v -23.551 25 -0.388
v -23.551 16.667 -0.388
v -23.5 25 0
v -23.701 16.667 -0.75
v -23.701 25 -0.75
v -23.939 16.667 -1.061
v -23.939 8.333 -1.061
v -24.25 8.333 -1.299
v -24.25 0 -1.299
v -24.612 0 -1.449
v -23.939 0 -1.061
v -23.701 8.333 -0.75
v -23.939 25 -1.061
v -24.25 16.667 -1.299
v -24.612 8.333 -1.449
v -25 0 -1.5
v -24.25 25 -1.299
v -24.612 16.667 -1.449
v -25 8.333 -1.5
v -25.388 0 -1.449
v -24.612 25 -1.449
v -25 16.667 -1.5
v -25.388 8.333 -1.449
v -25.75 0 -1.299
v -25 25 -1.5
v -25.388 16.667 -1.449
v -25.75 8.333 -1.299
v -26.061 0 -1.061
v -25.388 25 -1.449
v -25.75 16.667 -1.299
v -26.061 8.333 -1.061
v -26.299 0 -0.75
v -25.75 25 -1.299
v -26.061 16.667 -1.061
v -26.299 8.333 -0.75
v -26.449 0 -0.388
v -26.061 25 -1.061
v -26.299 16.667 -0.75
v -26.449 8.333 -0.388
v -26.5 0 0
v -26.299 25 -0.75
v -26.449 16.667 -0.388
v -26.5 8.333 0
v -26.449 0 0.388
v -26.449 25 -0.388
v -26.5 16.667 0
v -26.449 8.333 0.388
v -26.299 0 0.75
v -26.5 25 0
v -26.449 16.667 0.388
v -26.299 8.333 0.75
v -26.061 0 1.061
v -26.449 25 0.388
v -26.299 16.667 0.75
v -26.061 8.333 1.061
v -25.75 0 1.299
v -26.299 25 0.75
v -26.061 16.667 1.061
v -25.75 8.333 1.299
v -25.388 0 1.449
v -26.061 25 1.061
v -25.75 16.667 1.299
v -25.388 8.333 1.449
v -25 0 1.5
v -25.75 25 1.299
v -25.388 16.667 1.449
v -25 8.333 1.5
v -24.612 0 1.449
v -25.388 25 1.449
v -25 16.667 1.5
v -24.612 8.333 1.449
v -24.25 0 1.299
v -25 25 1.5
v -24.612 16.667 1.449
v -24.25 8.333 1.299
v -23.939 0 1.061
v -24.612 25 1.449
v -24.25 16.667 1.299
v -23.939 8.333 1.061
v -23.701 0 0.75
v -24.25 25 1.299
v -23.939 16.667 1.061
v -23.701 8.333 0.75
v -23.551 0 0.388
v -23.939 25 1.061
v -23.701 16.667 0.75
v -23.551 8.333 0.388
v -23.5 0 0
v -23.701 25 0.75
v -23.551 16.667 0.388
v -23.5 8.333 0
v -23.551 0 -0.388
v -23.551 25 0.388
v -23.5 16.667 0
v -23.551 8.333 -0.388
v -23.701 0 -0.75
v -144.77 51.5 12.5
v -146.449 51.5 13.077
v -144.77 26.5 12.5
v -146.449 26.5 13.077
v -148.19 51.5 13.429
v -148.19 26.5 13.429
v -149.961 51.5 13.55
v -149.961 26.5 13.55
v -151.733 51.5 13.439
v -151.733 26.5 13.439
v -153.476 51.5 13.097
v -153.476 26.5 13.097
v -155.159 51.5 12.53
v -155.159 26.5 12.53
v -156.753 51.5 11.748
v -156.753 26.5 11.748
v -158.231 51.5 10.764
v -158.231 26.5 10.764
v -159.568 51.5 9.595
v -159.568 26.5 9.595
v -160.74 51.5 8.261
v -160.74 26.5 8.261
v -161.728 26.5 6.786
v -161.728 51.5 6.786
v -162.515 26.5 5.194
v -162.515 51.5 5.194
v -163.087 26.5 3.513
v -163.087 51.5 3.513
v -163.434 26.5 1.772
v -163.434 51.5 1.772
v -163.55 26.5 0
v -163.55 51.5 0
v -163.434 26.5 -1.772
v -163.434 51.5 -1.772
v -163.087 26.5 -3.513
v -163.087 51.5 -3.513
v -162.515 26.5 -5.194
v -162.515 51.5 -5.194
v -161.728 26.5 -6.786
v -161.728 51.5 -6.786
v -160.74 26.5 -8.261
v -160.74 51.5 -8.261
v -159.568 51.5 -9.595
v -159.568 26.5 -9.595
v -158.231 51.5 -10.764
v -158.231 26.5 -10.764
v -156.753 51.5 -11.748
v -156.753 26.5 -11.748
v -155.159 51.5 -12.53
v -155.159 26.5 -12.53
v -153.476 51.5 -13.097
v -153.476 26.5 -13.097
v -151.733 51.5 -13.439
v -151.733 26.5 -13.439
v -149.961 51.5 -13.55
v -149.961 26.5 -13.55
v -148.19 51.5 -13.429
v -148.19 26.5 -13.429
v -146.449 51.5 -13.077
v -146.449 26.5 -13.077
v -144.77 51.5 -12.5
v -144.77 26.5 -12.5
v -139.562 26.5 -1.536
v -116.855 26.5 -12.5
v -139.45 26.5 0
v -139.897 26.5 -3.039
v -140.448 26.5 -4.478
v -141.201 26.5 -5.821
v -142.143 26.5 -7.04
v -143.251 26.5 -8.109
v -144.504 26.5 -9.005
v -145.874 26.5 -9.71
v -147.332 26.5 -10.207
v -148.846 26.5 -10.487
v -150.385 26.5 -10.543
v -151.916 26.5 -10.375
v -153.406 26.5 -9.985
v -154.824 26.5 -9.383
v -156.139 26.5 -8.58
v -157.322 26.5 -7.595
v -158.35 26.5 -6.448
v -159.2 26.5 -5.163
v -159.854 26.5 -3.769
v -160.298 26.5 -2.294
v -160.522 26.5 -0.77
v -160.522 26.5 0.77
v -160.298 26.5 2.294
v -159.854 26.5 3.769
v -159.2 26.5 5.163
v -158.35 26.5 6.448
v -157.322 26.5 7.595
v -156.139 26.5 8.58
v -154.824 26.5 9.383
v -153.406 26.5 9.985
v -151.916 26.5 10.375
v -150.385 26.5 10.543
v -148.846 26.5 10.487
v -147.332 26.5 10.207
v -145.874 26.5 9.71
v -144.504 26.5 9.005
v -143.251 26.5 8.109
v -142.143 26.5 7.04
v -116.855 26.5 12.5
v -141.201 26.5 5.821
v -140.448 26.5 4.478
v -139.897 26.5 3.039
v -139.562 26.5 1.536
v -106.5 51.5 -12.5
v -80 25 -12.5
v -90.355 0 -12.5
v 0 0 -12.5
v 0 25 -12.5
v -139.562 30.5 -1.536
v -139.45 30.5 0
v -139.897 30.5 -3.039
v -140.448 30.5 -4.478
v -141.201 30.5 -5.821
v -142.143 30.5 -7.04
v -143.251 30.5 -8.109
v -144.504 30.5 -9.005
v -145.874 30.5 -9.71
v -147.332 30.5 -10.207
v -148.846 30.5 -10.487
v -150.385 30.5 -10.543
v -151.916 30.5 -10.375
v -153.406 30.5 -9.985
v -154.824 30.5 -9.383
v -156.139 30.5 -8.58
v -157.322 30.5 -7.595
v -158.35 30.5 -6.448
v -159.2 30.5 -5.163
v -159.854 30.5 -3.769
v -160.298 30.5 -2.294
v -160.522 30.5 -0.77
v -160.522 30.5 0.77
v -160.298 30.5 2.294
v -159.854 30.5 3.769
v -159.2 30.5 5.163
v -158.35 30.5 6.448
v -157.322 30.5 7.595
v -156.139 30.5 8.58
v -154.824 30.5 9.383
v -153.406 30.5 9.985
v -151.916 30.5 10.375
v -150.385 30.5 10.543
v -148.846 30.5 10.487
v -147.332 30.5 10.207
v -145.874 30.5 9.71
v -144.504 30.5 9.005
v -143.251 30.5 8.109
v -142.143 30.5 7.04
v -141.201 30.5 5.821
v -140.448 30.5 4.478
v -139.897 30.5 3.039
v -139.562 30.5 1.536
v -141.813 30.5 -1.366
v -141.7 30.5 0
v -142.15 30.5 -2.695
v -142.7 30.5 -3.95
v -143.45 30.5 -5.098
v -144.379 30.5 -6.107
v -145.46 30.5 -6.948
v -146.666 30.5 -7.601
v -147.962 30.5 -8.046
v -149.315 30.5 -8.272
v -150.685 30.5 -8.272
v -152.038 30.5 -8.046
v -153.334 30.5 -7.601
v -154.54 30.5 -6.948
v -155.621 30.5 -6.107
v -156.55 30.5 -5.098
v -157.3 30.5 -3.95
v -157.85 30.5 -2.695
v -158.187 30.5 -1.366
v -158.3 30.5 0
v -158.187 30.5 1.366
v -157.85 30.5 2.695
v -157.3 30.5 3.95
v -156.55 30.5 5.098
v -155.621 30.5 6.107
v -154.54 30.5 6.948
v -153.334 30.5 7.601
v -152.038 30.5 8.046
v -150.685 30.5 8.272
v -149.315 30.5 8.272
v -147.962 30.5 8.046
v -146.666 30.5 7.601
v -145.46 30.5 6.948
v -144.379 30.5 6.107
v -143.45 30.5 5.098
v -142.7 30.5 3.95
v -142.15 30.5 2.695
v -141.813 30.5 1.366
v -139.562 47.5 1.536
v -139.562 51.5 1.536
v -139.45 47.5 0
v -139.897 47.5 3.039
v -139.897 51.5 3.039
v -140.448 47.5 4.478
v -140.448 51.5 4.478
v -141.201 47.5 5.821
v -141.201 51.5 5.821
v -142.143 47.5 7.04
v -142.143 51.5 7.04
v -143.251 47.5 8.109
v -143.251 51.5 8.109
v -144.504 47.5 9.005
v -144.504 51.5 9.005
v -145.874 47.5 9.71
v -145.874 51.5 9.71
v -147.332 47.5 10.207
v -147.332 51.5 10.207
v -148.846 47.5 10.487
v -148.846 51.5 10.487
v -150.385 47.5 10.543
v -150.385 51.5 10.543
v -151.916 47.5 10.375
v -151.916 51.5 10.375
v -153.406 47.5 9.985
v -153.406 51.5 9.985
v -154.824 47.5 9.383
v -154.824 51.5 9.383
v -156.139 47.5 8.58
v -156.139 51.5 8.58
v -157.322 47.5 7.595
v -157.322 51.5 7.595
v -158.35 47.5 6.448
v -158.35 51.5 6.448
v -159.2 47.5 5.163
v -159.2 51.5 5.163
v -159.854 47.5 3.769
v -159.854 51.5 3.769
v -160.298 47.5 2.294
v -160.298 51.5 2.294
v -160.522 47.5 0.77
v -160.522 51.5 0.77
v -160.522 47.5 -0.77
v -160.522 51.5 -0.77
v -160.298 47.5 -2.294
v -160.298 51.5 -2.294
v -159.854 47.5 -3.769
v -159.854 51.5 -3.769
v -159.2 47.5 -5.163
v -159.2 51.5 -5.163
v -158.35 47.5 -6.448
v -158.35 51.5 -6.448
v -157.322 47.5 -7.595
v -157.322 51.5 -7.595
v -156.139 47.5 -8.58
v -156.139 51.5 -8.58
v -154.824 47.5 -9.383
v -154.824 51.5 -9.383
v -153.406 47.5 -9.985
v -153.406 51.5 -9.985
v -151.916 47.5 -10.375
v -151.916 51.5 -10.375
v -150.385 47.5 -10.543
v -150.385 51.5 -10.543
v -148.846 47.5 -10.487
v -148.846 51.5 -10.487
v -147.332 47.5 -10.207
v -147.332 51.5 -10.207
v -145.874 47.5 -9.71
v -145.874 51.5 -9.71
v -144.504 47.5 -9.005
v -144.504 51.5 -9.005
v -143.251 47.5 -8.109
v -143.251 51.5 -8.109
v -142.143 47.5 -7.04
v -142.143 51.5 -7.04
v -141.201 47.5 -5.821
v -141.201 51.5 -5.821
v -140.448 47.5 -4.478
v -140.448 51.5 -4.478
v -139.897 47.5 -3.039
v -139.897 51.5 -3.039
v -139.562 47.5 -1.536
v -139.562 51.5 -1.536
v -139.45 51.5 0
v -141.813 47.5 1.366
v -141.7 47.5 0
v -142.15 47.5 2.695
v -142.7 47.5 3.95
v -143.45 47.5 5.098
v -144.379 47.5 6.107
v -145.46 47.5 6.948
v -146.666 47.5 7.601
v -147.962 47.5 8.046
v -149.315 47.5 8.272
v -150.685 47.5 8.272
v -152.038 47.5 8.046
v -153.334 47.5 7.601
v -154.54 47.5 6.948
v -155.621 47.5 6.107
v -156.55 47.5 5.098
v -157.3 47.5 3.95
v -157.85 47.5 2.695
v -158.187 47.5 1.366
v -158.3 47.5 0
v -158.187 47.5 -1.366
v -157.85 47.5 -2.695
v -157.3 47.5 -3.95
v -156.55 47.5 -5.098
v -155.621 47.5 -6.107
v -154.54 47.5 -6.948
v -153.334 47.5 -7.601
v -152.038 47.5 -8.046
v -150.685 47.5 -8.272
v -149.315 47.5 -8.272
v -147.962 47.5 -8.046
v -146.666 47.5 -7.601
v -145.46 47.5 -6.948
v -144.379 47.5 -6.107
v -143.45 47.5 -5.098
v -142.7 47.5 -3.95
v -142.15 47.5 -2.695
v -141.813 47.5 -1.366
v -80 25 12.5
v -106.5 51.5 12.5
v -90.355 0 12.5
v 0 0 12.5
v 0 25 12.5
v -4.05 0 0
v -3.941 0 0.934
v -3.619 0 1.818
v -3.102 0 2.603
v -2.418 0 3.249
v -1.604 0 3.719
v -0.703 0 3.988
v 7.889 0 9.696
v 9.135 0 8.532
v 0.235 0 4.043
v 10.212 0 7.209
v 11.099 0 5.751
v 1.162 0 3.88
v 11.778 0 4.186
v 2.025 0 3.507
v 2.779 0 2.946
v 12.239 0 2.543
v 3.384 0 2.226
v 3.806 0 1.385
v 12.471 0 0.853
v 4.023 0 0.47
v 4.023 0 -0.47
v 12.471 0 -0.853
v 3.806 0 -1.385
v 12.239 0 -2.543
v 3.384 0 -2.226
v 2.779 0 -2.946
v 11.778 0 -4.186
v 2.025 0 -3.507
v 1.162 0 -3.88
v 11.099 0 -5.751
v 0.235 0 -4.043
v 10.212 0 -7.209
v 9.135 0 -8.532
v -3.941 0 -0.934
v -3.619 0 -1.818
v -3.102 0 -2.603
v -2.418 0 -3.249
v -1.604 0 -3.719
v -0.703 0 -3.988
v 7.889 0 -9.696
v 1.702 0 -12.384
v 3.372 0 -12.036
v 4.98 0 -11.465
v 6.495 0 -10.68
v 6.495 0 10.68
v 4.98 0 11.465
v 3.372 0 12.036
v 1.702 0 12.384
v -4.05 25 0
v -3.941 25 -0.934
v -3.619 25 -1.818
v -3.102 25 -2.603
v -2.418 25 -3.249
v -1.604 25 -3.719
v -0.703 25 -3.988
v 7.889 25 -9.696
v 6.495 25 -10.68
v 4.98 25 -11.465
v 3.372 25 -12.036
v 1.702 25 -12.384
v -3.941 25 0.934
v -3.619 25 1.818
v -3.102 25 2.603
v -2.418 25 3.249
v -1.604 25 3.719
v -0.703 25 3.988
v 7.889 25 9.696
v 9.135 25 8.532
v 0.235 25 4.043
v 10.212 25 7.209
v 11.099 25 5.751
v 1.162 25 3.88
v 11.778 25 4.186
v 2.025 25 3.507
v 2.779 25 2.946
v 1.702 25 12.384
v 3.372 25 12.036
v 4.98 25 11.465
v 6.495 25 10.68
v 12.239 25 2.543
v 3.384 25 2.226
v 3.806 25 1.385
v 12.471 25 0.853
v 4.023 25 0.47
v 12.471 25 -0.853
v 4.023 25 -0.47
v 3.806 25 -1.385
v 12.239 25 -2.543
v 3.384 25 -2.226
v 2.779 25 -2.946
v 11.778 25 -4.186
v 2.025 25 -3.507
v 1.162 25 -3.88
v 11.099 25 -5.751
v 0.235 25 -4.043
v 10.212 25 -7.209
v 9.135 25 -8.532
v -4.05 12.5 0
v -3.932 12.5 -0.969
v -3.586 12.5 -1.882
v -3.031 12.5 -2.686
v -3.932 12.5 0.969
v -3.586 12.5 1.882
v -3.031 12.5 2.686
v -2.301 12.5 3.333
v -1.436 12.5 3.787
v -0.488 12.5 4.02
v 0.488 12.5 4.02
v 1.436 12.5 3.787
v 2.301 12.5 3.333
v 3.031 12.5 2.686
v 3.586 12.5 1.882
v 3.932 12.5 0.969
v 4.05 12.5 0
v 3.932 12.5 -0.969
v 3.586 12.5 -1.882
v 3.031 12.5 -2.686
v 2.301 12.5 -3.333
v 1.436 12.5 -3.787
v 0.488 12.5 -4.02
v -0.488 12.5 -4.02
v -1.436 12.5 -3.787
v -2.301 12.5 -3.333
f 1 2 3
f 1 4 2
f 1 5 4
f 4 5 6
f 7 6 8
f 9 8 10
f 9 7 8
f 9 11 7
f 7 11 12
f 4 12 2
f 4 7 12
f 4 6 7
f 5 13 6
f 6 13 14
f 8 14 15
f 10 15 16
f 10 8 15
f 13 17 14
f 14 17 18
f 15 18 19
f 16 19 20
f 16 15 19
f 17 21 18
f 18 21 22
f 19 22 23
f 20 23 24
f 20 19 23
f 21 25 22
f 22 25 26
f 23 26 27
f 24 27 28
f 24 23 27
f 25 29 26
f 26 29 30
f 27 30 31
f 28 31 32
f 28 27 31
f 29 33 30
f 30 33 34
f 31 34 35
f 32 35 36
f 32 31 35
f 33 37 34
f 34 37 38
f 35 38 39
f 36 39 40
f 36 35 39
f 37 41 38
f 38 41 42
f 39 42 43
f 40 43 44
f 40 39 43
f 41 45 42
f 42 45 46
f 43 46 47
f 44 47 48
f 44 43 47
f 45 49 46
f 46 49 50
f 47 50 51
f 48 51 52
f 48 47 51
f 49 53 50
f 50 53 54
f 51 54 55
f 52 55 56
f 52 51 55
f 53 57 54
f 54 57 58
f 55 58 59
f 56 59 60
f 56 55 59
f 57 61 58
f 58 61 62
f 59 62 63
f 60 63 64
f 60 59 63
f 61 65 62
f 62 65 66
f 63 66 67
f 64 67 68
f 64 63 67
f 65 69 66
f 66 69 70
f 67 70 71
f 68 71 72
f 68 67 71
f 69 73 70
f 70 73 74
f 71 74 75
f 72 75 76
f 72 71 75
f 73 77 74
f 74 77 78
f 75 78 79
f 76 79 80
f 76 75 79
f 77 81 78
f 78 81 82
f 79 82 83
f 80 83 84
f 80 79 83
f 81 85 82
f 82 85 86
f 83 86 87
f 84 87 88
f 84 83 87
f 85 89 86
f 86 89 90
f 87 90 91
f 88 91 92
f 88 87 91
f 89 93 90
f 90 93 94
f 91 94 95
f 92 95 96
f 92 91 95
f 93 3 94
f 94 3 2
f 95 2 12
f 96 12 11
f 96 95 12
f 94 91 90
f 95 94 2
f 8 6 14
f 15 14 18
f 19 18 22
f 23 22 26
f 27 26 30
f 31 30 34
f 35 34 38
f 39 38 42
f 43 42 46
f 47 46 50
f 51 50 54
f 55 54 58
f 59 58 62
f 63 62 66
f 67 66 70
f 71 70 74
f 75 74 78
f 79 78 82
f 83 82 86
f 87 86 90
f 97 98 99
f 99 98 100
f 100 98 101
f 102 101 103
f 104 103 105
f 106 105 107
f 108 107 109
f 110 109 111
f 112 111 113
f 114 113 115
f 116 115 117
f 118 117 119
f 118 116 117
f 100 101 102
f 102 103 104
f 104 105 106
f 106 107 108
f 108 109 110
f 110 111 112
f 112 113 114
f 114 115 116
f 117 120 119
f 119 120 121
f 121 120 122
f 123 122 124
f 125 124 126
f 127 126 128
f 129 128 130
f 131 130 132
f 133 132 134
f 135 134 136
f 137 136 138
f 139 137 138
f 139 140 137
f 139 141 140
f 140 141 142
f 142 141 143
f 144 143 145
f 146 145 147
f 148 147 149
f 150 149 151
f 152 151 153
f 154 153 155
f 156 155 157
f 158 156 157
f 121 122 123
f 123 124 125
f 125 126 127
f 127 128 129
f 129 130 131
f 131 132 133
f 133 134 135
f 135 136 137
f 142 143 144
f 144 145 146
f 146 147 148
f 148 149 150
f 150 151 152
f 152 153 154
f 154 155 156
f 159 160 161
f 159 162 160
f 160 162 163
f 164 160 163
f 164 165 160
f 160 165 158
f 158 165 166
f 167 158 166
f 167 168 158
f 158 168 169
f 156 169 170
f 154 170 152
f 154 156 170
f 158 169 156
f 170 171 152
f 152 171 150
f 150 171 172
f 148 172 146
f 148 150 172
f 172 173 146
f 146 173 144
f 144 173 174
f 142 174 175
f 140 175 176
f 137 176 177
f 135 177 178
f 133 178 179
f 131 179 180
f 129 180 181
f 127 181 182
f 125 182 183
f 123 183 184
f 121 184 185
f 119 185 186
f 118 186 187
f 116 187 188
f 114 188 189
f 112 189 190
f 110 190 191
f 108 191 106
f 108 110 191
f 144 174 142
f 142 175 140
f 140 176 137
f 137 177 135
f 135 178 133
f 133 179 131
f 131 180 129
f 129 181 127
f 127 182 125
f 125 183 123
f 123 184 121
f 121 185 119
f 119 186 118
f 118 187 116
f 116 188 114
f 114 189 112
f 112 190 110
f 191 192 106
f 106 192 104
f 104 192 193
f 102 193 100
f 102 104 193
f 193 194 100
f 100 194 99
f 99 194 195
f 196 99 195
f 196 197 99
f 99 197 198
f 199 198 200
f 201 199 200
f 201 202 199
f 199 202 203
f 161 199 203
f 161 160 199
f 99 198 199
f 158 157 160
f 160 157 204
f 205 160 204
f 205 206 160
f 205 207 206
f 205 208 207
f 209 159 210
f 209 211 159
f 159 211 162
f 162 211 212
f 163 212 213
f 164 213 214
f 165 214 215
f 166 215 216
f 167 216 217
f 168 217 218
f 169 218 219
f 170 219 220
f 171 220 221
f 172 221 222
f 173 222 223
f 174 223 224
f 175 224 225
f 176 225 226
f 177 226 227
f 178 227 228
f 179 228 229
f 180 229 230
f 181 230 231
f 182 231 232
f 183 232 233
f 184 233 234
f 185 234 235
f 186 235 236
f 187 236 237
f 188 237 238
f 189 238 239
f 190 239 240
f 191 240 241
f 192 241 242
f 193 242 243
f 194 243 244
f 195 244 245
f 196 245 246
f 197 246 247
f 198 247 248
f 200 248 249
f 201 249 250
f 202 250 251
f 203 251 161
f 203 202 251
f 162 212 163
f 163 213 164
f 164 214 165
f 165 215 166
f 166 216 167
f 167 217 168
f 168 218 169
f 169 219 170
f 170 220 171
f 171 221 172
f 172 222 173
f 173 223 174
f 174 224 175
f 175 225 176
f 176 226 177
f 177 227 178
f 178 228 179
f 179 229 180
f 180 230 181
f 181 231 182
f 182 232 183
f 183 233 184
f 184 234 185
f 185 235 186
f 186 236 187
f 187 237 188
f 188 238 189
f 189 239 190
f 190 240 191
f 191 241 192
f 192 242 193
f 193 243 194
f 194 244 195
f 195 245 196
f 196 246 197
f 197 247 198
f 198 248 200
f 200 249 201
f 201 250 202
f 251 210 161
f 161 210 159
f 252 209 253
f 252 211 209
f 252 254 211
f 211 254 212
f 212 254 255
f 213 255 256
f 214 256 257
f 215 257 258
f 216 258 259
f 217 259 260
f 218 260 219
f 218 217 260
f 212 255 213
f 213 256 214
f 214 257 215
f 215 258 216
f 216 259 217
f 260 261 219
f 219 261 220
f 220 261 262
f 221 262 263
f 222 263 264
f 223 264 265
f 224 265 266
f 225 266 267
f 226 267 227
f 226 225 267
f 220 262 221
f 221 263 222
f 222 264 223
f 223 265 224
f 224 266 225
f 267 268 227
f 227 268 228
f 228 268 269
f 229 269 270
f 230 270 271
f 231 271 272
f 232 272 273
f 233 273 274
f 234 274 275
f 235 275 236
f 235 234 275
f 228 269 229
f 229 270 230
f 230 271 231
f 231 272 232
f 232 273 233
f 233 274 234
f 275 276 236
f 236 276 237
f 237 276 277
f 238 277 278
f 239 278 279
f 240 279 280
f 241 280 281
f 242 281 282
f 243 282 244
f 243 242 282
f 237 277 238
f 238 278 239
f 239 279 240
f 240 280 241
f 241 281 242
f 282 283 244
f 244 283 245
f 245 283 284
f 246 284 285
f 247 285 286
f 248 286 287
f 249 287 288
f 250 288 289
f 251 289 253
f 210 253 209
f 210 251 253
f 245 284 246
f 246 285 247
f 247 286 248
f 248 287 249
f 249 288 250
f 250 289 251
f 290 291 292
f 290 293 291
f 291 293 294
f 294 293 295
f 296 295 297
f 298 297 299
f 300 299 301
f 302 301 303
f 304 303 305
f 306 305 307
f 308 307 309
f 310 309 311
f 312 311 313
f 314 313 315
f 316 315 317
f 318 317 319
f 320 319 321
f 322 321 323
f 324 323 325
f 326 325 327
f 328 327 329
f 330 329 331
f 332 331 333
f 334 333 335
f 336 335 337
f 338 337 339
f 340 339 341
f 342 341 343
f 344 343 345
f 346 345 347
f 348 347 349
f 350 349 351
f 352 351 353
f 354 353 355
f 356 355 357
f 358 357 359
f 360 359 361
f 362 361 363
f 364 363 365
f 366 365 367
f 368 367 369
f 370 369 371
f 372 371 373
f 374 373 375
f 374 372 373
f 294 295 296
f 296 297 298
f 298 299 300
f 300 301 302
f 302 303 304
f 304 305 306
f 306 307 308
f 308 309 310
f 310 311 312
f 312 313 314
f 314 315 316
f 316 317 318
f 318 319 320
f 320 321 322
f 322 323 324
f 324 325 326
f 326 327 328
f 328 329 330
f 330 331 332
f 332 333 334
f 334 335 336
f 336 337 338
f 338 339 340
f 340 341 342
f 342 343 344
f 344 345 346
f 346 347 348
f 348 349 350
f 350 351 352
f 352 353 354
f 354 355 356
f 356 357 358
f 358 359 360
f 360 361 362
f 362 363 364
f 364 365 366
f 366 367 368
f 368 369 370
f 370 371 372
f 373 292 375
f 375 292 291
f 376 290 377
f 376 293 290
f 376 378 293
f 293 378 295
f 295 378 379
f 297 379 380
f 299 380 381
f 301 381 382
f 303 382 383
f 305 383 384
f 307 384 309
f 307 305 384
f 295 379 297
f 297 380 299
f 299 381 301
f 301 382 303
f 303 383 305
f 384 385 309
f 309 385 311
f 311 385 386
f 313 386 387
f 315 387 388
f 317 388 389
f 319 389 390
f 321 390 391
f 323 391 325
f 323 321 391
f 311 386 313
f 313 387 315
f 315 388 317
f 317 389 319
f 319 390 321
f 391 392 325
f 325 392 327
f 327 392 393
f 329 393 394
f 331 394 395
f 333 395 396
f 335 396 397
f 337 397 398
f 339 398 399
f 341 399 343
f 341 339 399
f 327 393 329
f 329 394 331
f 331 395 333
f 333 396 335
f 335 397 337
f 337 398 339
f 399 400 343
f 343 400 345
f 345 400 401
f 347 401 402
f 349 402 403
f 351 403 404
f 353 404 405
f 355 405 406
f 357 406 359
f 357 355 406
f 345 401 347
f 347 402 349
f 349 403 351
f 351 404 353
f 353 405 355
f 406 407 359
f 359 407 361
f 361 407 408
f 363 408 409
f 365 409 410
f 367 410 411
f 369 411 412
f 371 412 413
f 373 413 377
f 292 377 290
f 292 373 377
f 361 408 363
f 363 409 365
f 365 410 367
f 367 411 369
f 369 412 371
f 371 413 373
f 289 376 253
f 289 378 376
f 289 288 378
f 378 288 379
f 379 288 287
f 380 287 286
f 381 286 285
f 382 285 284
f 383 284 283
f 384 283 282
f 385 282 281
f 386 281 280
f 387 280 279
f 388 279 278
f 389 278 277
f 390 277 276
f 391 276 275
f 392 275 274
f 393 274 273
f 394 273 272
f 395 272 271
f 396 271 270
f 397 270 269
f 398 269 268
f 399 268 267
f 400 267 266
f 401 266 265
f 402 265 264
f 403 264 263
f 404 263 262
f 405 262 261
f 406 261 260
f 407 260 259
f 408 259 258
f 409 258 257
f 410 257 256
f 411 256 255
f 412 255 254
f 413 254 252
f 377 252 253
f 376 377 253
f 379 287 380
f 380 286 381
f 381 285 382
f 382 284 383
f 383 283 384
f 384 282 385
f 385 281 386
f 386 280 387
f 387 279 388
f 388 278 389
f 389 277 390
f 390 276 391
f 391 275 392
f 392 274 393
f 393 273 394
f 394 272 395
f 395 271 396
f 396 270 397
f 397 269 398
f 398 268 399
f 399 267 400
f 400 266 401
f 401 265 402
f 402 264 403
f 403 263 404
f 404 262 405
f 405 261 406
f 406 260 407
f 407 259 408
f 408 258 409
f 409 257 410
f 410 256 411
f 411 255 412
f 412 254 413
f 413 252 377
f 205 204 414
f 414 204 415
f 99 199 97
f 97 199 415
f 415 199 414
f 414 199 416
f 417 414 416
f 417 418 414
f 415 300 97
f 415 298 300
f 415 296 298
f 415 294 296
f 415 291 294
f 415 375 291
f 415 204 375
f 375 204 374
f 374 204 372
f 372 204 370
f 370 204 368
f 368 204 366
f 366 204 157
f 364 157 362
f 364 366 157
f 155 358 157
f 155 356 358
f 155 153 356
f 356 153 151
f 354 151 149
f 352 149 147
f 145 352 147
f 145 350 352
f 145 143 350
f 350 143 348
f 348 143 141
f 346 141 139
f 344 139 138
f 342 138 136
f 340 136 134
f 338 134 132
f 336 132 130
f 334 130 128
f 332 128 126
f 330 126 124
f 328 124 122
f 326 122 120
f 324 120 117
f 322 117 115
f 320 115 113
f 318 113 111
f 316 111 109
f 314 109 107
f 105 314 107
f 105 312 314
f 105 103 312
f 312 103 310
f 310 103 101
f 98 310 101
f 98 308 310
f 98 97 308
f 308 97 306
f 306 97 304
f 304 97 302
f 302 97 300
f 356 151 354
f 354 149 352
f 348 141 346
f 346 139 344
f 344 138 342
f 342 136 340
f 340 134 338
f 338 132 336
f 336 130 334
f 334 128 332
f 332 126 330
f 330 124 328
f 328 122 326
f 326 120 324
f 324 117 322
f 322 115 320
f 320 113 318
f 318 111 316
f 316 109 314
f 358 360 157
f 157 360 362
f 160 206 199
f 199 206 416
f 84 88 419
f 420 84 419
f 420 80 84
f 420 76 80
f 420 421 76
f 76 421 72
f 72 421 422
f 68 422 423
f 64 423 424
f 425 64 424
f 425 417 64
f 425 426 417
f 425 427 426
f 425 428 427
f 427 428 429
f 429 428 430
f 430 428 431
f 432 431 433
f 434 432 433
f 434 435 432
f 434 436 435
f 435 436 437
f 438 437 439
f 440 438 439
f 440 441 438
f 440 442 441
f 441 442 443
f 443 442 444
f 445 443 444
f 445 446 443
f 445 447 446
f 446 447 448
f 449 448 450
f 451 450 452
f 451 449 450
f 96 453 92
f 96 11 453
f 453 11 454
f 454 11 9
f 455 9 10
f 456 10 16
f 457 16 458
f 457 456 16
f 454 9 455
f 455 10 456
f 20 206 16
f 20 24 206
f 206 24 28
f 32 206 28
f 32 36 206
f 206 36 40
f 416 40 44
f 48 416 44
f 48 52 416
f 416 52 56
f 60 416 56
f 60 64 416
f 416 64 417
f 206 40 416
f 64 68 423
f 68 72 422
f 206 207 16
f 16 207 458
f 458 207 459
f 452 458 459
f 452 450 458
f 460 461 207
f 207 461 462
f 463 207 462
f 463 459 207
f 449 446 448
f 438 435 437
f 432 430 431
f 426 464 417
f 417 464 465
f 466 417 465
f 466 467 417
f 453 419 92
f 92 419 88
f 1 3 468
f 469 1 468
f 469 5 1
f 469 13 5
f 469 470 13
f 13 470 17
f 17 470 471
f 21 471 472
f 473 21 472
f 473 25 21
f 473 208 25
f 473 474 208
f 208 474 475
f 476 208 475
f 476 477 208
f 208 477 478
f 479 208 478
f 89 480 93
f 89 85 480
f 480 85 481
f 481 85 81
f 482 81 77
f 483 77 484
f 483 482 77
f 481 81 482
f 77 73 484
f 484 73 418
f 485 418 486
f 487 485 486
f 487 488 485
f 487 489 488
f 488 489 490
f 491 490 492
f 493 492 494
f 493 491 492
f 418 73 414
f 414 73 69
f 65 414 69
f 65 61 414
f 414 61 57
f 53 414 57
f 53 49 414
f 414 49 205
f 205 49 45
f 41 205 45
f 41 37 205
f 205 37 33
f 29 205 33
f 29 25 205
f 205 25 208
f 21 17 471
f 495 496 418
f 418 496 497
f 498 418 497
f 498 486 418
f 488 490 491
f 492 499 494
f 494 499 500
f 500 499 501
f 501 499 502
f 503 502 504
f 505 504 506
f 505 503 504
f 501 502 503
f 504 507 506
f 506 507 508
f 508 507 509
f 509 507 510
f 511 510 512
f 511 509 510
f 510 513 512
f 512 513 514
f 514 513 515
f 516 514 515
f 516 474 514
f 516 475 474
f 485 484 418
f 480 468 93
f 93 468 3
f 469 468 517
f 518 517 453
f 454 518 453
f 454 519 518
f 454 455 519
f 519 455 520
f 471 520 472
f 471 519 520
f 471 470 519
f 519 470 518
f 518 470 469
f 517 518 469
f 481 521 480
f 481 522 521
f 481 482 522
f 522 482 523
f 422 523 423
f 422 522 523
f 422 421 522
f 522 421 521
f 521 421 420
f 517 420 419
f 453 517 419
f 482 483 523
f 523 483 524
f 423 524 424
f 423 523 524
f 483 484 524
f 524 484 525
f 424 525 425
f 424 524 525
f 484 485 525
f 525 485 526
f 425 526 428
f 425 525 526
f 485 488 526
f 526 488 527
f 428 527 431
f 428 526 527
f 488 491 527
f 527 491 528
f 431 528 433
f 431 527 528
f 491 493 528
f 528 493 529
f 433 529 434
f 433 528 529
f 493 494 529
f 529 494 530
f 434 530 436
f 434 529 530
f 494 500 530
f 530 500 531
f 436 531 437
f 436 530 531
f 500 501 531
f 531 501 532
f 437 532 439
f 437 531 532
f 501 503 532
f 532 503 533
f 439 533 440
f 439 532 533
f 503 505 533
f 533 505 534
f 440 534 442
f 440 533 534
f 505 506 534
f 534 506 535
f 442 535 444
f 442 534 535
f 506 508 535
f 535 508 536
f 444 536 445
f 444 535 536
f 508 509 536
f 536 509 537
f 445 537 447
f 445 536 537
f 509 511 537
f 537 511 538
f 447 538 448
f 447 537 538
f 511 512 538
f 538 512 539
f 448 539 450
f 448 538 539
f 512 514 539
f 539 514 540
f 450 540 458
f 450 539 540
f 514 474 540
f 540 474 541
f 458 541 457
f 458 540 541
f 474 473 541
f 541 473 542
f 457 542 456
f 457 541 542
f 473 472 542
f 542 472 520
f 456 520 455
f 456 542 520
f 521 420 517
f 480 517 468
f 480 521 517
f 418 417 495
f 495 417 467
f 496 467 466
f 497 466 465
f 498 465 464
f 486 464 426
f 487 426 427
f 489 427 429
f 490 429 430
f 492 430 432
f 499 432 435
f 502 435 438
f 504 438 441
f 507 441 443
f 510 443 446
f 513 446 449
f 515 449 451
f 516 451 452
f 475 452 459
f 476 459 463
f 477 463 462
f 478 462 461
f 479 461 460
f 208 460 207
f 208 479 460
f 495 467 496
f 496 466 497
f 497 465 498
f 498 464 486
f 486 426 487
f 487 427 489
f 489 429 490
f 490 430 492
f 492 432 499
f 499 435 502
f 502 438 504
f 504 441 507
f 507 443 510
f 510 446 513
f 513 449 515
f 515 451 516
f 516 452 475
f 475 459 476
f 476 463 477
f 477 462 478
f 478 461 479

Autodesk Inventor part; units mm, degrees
ref_plane "YZ Plane" through (0, 0, 0) normal (1, 0, 0) x (0, 1, 0)
ref_plane "XZ Plane" through (0, 0, 0) normal (0, 1, 0) x (-1, 0, 0)
ref_plane "XY Plane" through (0, 0, 0) normal (0, 0, 1) x (1, 0, 0)
sketch "Sketch1" plane through (0, 0, 0) normal (0, 1, 0) x (-1, 0, 0)
  circle A0 centre (0, 0) radius 4.05
  line L0 (0, 12.5) -> (150, 12.5)
  arc A1 (150, -12.5) -> (150, 12.5) centre (150, 0) ccw
  line L1 (150, -12.5) -> (0, -12.5)
  arc A2 (0, 12.5) -> (0, -12.5) centre (0, 0) ccw
  dimension "d0" = 150
  dimension "d2" = 12.5
  dimension "d3" = 8.1
extrude "Extrusion1" add sketch "Sketch1" along normal blind 25
sketch "Sketch2" plane through (0, 25, 0) normal (0, 1, 0) x (1, 0, 0)
  circle A0 centre (0, 0) radius 4.05 projected
  line L0 (-150, -12.5) -> (0, -12.5) projected
  line L1 (0, 12.5) -> (-150, 12.5) projected
  arc A1 (-150, 12.5) -> (-150, -12.5) centre (-150, 0) ccw projected
  line L2 (-80, 12.5) -> (-80, -12.5)
  dimension "d6" = 80
extrude "Extrusion2" add sketch "Sketch2" along normal blind 26.5 contours A1 L1 L2 L0
sketch "Sketch3" plane through (-150, 0, 12.5) normal (0, 0, 1) x (1, 0, 0)
  line L0 (150, 0) -> (0, 0) projected
  line L1 (70, 25) -> (70, 51.5) projected
  line L2 (0, 51.5) -> (70, 51.5) projected
  line L3 (70, 25) -> (43.5, 51.5)
  line L4 (59.6447, 0) -> (33.1447, 26.5)
  line L5 (70, 51.5) -> (70, 25) projected
  line L6 (70, 25) -> (150, 25) projected
  line L7 (150, 0) -> (150, 25) projected
  line L8 (150, 0) -> (0, 0) projected
  line L9 (0, 0) -> (0, 51.5) projected
  line L10 (-12.5, 0) -> (-12.5, 51.5) projected
  line L11 (-12.5, 26.5) -> (33.1447, 26.5)
  line L12 (-12.5, 26.5) -> (-12.5, 0)
  line L13 (59.6447, 0) -> (-12.5, 0)
  line L14 (0, 51.5) -> (70, 51.5) projected
  dimension "d9" = 45
  dimension "d10" = 25
  dimension "d11" = 25
extrude "Extrusion3" cut sketch "Sketch3" against normal through all contours L0 L9 L11 L4 | L13 L10 L11 L9
sketch "Sketch4" plane through (0, 0, 12.5) normal (0, 0, 1) x (1, 0, 0)
  line L0 (-116.8553, 26.5) -> (-90.3553, 0) projected
  line L1 (-80, 25) -> (-80, 51.5) projected
  line L2 (-150, 51.5) -> (-80, 51.5) projected
  line L3 (-80, 25) -> (-106.5, 51.5)
extrude "Extrusion4" cut sketch "Sketch4" against normal through all
sketch "Sketch5" plane through (0, 51.5, 0) normal (0, 1, 0) x (1, 0, 0)
  arc A0 (-150, 12.5) -> (-150, -12.5) centre (-150, 0) ccw projected
  circle A1 centre (-150, 0) radius 8.3
  point P0 (0, 0)
  dimension "d20" = 16.6
extrude "Extrusion5" cut sketch "Sketch5" against normal through all
sketch "Sketch6" plane through (0, 51.5, 0) normal (0, 1, 0) x (1, 0, 0)
  circle A0 centre (-150, 0) radius 8.3 projected
  arc A1 (-150, 12.5) -> (-150, -12.5) centre (-150, 0) ccw projected
  circle A2 centre (-150, 0) radius 10.55
  point P0 (0, 0)
  dimension "d26" = 21.1
extrude "Extrusion6" cut sketch "Sketch6" against normal blind 4
sketch "Sketch7" plane through (-150, 26.5, 12.5) normal (0, -1, 0) x (1, 0, 0)
  circle A0 centre (0, -12.5) radius 8.3 projected
  circle A1 centre (0, -12.5) radius 10.55 projected
  point P0 (150, -12.5)
extrude "Extrusion7" cut sketch "Sketch7" against normal blind 4
sketch "Sketch8" plane through (0, 51.5, 0) normal (0, 1, 0) x (1, 0, 0)
  circle A0 centre (-150, 0) radius 10.55 projected
  arc A1 (-150, 12.5) -> (-150, -12.5) centre (-150, 0) ccw projected
  circle A2 centre (-150, 0) radius 13.55
  point P0 (0, 0)
  dimension "d32" = 3
extrude "Extrusion8" add sketch "Sketch8" against normal up to surface (25 mm away)
sketch "Sketch9" plane through (0, 0, 0) normal (0, -1, 0) x (1, 0, 0)
  line L0 (0, 12.5) -> (-90.3553, 12.5) projected
  circle A0 centre (0, 0) radius 4.05 projected
  line L1 (0, 0) -> (-25, 0)
  circle A1 centre (-25, 0) radius 1.5
  dimension "d35" = 25
  dimension "d36" = 3
extrude "Extrusion9" cut sketch "Sketch9" against normal through all contours A1
sketch "Sketch14" plane through (0, 51.5, 0) normal (0, 1, 0) x (1, 0, 0)
  line L0 (-106.5, 12.5) -> (-144.77, 12.5) projected
  arc A0 (-144.77, 12.5) -> (-144.77, -12.5) centre (-150, 0) ccw projected
  line L1 (-144.77, -12.5) -> (-155.23, -12.5)
  point P0 (0, 0)
sketch "Sketch15" plane through (0, 51.5, 0) normal (0, 1, 0) x (1, 0, 0)
  line L0 (-106.5, 12.5) -> (-144.77, 12.5) projected
  arc A0 (-144.77, 12.5) -> (-155.23, -12.5) centre (-150, 0) ccw projected
  line L1 (-155.23, -12.5) -> (-158.4293, -12.5)
  line L2 (-158.4293, -12.5) -> (-161.7346, -6.775)
  point P0 (0, 0)
  dimension "d52" = 120
sketch "Sketch16" plane through (0, 25, 0) normal (0, 1, 0) x (1, 0, 0)
  arc A0 (0, -12.5) -> (0, 12.5) centre (0, 0) ccw projected
  line L0 (0, 12.5) -> (-80, 12.5) projected
  line L1 (0, -12.5) -> (7.2169, -12.5)
  line L2 (7.2169, -12.5) -> (10.8253, -6.25)
  dimension "d55" = 120
properties part number "xy forearm"
